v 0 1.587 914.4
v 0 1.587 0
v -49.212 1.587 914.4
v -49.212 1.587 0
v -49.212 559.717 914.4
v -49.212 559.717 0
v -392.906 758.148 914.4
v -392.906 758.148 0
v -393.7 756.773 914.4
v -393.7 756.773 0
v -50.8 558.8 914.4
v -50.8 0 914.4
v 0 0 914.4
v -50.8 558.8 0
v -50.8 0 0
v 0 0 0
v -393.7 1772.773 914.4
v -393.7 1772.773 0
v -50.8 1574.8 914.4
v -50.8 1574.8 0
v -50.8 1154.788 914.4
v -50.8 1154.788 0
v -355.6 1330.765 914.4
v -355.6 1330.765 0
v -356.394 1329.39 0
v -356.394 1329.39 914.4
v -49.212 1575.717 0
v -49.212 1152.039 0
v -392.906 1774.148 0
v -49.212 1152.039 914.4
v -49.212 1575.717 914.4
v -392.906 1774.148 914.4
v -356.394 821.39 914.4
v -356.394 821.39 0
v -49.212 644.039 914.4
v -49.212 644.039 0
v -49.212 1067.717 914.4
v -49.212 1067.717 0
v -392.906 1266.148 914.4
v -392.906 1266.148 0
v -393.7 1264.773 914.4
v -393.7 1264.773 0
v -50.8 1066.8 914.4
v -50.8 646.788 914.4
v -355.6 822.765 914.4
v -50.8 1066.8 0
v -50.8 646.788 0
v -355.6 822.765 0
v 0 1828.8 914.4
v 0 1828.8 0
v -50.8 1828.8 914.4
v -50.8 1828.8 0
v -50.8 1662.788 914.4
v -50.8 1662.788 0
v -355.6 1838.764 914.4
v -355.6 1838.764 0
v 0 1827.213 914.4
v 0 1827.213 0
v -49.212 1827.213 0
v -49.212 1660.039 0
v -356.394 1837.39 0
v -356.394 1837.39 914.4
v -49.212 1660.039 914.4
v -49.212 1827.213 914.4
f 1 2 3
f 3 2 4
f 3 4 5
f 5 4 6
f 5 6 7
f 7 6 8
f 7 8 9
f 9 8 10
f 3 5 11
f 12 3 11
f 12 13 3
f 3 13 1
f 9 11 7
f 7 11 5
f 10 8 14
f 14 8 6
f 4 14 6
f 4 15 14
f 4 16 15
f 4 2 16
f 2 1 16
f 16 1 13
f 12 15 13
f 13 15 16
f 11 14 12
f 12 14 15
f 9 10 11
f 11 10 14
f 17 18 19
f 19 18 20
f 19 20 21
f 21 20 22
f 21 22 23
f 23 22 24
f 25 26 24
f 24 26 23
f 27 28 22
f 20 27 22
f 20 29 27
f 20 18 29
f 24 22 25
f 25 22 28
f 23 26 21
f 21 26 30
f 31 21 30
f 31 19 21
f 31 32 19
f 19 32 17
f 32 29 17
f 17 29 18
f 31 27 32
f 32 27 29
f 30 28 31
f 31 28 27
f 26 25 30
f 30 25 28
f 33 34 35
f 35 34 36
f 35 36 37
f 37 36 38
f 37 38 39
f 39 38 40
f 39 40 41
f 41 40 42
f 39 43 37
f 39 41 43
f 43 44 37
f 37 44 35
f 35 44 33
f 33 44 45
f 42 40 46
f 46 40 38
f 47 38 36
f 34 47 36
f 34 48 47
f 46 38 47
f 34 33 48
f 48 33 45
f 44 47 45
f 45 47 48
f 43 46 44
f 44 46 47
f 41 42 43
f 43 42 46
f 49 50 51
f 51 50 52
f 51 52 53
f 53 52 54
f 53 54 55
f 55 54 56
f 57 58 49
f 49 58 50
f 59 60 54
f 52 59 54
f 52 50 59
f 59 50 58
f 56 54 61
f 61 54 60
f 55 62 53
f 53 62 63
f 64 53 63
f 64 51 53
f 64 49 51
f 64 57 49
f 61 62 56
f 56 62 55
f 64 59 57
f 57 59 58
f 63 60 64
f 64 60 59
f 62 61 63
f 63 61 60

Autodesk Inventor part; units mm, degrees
ref_plane "YZ Plane" through (0, 0, 0) normal (1, 0, 0) x (0, 1, 0)
ref_plane "XZ Plane" through (0, 0, 0) normal (0, 1, 0) x (-1, 0, 0)
ref_plane "XY Plane" through (0, 0, 0) normal (0, 0, 1) x (1, 0, 0)
sketch "Sketch2" plane through (0, 0, 0) normal (0, 0, 1) x (1, 0, 0)
  line L0 (0, 0) -> (0, 1828.8)
  line L1 (0, 1828.8) -> (-50.8, 1828.8)
  line L2 (-50.8, 1828.8) -> (-50.8, 1662.7882)
  line L3 (-50.8, 1662.7882) -> (-355.6, 1838.7645)
  line L4 (-355.6, 1838.7645) -> (-393.7, 1772.7734)
  line L5 (-393.7, 1772.7734) -> (-50.8, 1574.8)
  line L6 (-50.8, 1574.8) -> (-50.8, 1154.7882)
  line L7 (-50.8, 1154.7882) -> (-355.6, 1330.7645)
  line L8 (-355.6, 1330.7645) -> (-393.7, 1264.7734)
  line L9 (-393.7, 1264.7734) -> (-50.8, 1066.8)
  line L10 (-50.8, 1066.8) -> (-50.8, 646.7882)
  line L11 (-50.8, 646.7882) -> (-355.6, 822.7645)
  line L12 (-355.6, 822.7645) -> (-393.7, 756.7734)
  line L13 (-393.7, 756.7734) -> (-50.8, 558.8)
  line L14 (-50.8, 558.8) -> (-50.8, 0)
  line L15 (-50.8, 0) -> (0, 0)
  dimension "d0" = 60
  dimension "d1" = 558.8
  dimension "d3" = 304.8
  dimension "d4" = 1828.8
  dimension "d6" = 76.2
  dimension "d7" = 50.8
  dimension "d8" = 1574.8
  dimension "d10" = 1066.8
extrude "Extrusion1" add sketch "Sketch2" along normal blind 914.4
shell "Shell1" thickness 1.5875 removed faces 6 at (-368.3, 800.7675, 304.8) at (-368.3, 1308.7675, 304.8) at (-368.3, 1816.7675, 304.8) at (0, 609.6, 304.8) at (-16.9333, 795.8667, 914.4) at (-16.9333, 795.8667, 0)
properties part number "FeederMockup"
